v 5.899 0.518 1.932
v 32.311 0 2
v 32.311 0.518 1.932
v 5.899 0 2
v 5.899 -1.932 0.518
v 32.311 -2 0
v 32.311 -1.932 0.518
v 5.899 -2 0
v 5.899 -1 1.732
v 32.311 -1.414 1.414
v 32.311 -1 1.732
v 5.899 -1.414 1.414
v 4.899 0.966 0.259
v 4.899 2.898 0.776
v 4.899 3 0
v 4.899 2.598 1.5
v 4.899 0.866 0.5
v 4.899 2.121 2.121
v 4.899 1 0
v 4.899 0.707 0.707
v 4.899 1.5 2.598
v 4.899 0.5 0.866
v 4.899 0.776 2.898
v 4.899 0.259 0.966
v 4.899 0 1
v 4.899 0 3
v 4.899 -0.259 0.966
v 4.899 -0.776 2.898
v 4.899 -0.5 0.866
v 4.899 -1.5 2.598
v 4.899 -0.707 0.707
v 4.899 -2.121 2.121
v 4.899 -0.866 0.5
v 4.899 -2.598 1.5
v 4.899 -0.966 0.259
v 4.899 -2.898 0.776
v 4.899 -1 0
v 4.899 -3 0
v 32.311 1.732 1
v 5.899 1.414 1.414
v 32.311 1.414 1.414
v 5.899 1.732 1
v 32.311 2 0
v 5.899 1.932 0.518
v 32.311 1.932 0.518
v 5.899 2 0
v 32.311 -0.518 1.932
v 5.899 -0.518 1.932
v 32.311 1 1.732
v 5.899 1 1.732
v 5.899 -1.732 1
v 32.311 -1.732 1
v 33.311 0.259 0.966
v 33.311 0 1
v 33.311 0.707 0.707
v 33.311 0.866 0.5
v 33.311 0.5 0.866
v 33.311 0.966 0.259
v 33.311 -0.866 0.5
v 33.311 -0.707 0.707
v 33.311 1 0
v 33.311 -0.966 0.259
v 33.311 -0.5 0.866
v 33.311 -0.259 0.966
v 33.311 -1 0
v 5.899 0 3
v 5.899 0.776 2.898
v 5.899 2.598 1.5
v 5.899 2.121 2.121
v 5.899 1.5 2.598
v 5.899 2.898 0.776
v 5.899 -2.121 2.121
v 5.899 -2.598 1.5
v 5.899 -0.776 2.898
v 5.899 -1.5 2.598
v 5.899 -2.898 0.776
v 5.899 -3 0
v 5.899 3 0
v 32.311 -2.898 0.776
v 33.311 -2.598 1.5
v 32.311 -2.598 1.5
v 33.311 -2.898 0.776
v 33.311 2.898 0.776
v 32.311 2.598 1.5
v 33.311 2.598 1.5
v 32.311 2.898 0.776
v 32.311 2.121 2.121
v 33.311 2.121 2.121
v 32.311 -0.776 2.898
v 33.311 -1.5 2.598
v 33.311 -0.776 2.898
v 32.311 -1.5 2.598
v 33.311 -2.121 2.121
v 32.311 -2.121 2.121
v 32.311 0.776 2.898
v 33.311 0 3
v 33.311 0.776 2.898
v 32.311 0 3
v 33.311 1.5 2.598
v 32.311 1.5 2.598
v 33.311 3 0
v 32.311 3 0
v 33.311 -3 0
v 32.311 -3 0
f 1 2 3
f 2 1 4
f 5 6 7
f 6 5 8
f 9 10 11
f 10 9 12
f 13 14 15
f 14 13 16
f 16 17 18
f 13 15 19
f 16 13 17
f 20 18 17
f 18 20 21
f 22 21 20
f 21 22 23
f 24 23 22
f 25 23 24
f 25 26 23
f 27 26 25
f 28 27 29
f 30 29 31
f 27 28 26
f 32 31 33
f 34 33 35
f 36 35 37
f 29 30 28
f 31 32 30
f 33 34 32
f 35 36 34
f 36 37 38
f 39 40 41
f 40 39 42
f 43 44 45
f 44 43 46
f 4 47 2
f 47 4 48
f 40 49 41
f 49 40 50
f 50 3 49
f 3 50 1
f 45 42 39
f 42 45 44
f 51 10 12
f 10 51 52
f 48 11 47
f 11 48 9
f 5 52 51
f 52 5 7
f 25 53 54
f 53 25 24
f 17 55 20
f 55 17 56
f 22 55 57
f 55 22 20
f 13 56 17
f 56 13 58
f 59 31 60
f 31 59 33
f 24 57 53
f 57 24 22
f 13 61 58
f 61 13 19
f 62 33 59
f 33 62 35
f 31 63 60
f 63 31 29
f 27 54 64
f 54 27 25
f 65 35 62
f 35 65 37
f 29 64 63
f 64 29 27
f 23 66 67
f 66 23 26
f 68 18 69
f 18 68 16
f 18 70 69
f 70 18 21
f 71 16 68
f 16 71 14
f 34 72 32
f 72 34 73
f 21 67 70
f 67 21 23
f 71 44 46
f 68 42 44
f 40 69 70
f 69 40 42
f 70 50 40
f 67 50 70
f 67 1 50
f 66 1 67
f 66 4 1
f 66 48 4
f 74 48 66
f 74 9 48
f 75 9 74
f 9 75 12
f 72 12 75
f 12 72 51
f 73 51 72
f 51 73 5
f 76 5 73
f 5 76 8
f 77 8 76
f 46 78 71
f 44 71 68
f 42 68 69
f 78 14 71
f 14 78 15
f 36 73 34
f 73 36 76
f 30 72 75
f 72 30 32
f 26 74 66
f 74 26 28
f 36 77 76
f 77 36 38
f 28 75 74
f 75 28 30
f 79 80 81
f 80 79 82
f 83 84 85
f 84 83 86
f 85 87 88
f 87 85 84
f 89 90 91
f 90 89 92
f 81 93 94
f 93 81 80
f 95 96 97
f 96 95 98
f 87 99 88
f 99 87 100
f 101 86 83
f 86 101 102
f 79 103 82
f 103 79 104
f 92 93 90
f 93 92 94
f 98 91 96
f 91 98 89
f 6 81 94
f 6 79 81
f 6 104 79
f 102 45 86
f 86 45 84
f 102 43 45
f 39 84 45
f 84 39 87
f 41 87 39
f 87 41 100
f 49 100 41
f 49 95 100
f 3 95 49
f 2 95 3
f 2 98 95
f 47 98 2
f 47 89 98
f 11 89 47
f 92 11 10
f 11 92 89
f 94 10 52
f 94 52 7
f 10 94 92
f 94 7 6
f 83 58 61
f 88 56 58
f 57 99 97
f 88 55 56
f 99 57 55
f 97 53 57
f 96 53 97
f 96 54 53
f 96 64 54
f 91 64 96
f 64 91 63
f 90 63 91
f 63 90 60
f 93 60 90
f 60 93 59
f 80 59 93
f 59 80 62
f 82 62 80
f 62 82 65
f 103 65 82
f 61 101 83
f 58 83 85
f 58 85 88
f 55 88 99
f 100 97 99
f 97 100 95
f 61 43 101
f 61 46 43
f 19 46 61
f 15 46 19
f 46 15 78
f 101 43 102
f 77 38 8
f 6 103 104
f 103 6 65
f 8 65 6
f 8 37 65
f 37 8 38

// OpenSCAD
// file: ../build_environments.scad
// build_environments.scad: modules to build level sections
//

module pool(diameter=10.0, wall_height=2.0, step_width=3.0, connections=[])
{
    difference() {
        union() {
        difference() {
            cylinder(h=0.5,r1=diameter+step_width,r2=diameter+step_width,$fn=48);
            translate([0,0,-0.1])
                cylinder(h=0.7,r1=diameter,r2=diameter,$fn=48);
        }
        difference() {
            cylinder(h=wall_height,r1=diameter+step_width+1.0,r2=diameter+step_width+1.0,$fn=48);
            translate([0,0,-0.1])
                cylinder(h=wall_height+0.2,r1=diameter+step_width,r2=diameter+step_width,$fn=48);
        }
        }
    
        for (c = connections)
        {
            rotate([0,90,0]) {
                angle = atan2(c[1],c[0]);
                rotate([-angle,0,0]) {
                    cylinder(h=diameter+5.0,r1=c[2],r2=c[2],$fn=48);
                }
            }
        }
    }
}

module straight(length=10.0, width=2.0, dy1=0.0, dy2=0.0, dz=0.0)
{
    dims = [0, 0, 0, 0, 0, (dz/length)];
    matrix = [
        [ 1, dims[0], dims[1], 0 ],
        [ dims[2], 1, dims[4], 0 ],
        [ dims[5], dims[3], 1, 0 ],
        [ 0, 0, 0, 1 ]
    ];
    multmatrix(matrix)
    difference() {
        translate([dy1,0,0])
        union() {
            rotate([0,90,0]) {
                difference() {
                    cylinder(h=(length-dy1-dy2),r1=width+1.0,r2=width+1.0,$fn=24);
                    translate([0,0,-0.1])
                        cylinder(h=(length-dy1-dy2+0.2),r1=width,r2=width,$fn=24);
                }
                difference() {
                    cylinder(h=1.0,r1=width+2.0,r2=width+2.0,$fn=24);
                    translate([0,0,-0.1])
                        cylinder(h=1.2,r1=width,r2=width,$fn=24);
                }
                translate([0,0,(length-dy1-dy2)-1.0]) {
                    difference() {
                        cylinder(h=1.0,r1=width+2.0,r2=width+2.0,$fn=24);
                        translate([0,0,-0.1])
                            cylinder(h=1.2,r1=width,r2=width,$fn=24);
                    }
                }
            }
        }
        translate([0,0,-(2*width+4.0)/2])
            cube([3*length,3*length,2*width+4.0],center=true);
    }
}

module curve(p0=[0,0], center=[0,0], dir=1, angle=0.0, width=2.0)
{
    radius = sqrt((p0[0]-center[0])*(p0[0]-center[0]) + (p0[1]-center[1])*(p0[1]-center[1]));
    if (dir == 0) {
        difference() {
            rotate([0,0,-90])
            difference() {
                rotate_extrude(angle = angle, convexity = 10, $fn=32)
                    translate([radius, 0, 0])
                        circle(r = width+1.0,$fn=24);
                rotate([0,0,-1.0])
                    rotate_extrude(angle = angle+2.0, convexity = 10, $fn=32)
                        translate([radius, 0, 0])
                            circle(r = width,$fn=24);
            }
            translate([0,0,-(2*width+4.0)/2])
                cube([5*radius,5*radius,2*width+4.0],center=true);
        }
    }
    else {
        difference() {
            rotate([0,0,90])
            difference() {
                rotate_extrude(angle = -angle, convexity = 10, $fn=32)
                    translate([radius, 0, 0])
                        circle(r = width+1.0,$fn=24);
                rotate([0,0,1.0])
                    rotate_extrude(angle = -angle-2.0, convexity = 10, $fn=32)
                        translate([radius, 0, 0])
                            circle(r = width,$fn=24);
            }
            translate([0,0,-(2*width+4.0)/2])
                cube([5*radius,5*radius,2*width+4.0],center=true);
        }
    }

}

// test pool
//pool(diameter=12.0000, wall_height=3.0000, step_width=3.0000, connections=[[0.0000,-26.0000,2.0000], [23.6074,0.0000,2.0000]]);

// test straight, slope
//straight(length=26.0000, width=2.0000, dy1=11.8322, dy2=6.7082, dz=0.0000);
//straight(length=29.1549, width=12.0000, dy1=0.0000, dy2=0.0000, dz=-15.0000);

// test curve
//curve(p0=[23.6074, 0.0000], center=[23.6074, 5.0000], dir=0, angle=60.1011, width=2.0000);
//curve(p0=[33.6426, 12.4219], center=[37.9771, 9.9295], dir=1, angle=120.4627, width=2.0000);
// main file
use <../build_environments.scad>;
straight(length=38.2099, width=1.0000, dy1=4.8990, dy2=4.8990, dz=0.0000);
